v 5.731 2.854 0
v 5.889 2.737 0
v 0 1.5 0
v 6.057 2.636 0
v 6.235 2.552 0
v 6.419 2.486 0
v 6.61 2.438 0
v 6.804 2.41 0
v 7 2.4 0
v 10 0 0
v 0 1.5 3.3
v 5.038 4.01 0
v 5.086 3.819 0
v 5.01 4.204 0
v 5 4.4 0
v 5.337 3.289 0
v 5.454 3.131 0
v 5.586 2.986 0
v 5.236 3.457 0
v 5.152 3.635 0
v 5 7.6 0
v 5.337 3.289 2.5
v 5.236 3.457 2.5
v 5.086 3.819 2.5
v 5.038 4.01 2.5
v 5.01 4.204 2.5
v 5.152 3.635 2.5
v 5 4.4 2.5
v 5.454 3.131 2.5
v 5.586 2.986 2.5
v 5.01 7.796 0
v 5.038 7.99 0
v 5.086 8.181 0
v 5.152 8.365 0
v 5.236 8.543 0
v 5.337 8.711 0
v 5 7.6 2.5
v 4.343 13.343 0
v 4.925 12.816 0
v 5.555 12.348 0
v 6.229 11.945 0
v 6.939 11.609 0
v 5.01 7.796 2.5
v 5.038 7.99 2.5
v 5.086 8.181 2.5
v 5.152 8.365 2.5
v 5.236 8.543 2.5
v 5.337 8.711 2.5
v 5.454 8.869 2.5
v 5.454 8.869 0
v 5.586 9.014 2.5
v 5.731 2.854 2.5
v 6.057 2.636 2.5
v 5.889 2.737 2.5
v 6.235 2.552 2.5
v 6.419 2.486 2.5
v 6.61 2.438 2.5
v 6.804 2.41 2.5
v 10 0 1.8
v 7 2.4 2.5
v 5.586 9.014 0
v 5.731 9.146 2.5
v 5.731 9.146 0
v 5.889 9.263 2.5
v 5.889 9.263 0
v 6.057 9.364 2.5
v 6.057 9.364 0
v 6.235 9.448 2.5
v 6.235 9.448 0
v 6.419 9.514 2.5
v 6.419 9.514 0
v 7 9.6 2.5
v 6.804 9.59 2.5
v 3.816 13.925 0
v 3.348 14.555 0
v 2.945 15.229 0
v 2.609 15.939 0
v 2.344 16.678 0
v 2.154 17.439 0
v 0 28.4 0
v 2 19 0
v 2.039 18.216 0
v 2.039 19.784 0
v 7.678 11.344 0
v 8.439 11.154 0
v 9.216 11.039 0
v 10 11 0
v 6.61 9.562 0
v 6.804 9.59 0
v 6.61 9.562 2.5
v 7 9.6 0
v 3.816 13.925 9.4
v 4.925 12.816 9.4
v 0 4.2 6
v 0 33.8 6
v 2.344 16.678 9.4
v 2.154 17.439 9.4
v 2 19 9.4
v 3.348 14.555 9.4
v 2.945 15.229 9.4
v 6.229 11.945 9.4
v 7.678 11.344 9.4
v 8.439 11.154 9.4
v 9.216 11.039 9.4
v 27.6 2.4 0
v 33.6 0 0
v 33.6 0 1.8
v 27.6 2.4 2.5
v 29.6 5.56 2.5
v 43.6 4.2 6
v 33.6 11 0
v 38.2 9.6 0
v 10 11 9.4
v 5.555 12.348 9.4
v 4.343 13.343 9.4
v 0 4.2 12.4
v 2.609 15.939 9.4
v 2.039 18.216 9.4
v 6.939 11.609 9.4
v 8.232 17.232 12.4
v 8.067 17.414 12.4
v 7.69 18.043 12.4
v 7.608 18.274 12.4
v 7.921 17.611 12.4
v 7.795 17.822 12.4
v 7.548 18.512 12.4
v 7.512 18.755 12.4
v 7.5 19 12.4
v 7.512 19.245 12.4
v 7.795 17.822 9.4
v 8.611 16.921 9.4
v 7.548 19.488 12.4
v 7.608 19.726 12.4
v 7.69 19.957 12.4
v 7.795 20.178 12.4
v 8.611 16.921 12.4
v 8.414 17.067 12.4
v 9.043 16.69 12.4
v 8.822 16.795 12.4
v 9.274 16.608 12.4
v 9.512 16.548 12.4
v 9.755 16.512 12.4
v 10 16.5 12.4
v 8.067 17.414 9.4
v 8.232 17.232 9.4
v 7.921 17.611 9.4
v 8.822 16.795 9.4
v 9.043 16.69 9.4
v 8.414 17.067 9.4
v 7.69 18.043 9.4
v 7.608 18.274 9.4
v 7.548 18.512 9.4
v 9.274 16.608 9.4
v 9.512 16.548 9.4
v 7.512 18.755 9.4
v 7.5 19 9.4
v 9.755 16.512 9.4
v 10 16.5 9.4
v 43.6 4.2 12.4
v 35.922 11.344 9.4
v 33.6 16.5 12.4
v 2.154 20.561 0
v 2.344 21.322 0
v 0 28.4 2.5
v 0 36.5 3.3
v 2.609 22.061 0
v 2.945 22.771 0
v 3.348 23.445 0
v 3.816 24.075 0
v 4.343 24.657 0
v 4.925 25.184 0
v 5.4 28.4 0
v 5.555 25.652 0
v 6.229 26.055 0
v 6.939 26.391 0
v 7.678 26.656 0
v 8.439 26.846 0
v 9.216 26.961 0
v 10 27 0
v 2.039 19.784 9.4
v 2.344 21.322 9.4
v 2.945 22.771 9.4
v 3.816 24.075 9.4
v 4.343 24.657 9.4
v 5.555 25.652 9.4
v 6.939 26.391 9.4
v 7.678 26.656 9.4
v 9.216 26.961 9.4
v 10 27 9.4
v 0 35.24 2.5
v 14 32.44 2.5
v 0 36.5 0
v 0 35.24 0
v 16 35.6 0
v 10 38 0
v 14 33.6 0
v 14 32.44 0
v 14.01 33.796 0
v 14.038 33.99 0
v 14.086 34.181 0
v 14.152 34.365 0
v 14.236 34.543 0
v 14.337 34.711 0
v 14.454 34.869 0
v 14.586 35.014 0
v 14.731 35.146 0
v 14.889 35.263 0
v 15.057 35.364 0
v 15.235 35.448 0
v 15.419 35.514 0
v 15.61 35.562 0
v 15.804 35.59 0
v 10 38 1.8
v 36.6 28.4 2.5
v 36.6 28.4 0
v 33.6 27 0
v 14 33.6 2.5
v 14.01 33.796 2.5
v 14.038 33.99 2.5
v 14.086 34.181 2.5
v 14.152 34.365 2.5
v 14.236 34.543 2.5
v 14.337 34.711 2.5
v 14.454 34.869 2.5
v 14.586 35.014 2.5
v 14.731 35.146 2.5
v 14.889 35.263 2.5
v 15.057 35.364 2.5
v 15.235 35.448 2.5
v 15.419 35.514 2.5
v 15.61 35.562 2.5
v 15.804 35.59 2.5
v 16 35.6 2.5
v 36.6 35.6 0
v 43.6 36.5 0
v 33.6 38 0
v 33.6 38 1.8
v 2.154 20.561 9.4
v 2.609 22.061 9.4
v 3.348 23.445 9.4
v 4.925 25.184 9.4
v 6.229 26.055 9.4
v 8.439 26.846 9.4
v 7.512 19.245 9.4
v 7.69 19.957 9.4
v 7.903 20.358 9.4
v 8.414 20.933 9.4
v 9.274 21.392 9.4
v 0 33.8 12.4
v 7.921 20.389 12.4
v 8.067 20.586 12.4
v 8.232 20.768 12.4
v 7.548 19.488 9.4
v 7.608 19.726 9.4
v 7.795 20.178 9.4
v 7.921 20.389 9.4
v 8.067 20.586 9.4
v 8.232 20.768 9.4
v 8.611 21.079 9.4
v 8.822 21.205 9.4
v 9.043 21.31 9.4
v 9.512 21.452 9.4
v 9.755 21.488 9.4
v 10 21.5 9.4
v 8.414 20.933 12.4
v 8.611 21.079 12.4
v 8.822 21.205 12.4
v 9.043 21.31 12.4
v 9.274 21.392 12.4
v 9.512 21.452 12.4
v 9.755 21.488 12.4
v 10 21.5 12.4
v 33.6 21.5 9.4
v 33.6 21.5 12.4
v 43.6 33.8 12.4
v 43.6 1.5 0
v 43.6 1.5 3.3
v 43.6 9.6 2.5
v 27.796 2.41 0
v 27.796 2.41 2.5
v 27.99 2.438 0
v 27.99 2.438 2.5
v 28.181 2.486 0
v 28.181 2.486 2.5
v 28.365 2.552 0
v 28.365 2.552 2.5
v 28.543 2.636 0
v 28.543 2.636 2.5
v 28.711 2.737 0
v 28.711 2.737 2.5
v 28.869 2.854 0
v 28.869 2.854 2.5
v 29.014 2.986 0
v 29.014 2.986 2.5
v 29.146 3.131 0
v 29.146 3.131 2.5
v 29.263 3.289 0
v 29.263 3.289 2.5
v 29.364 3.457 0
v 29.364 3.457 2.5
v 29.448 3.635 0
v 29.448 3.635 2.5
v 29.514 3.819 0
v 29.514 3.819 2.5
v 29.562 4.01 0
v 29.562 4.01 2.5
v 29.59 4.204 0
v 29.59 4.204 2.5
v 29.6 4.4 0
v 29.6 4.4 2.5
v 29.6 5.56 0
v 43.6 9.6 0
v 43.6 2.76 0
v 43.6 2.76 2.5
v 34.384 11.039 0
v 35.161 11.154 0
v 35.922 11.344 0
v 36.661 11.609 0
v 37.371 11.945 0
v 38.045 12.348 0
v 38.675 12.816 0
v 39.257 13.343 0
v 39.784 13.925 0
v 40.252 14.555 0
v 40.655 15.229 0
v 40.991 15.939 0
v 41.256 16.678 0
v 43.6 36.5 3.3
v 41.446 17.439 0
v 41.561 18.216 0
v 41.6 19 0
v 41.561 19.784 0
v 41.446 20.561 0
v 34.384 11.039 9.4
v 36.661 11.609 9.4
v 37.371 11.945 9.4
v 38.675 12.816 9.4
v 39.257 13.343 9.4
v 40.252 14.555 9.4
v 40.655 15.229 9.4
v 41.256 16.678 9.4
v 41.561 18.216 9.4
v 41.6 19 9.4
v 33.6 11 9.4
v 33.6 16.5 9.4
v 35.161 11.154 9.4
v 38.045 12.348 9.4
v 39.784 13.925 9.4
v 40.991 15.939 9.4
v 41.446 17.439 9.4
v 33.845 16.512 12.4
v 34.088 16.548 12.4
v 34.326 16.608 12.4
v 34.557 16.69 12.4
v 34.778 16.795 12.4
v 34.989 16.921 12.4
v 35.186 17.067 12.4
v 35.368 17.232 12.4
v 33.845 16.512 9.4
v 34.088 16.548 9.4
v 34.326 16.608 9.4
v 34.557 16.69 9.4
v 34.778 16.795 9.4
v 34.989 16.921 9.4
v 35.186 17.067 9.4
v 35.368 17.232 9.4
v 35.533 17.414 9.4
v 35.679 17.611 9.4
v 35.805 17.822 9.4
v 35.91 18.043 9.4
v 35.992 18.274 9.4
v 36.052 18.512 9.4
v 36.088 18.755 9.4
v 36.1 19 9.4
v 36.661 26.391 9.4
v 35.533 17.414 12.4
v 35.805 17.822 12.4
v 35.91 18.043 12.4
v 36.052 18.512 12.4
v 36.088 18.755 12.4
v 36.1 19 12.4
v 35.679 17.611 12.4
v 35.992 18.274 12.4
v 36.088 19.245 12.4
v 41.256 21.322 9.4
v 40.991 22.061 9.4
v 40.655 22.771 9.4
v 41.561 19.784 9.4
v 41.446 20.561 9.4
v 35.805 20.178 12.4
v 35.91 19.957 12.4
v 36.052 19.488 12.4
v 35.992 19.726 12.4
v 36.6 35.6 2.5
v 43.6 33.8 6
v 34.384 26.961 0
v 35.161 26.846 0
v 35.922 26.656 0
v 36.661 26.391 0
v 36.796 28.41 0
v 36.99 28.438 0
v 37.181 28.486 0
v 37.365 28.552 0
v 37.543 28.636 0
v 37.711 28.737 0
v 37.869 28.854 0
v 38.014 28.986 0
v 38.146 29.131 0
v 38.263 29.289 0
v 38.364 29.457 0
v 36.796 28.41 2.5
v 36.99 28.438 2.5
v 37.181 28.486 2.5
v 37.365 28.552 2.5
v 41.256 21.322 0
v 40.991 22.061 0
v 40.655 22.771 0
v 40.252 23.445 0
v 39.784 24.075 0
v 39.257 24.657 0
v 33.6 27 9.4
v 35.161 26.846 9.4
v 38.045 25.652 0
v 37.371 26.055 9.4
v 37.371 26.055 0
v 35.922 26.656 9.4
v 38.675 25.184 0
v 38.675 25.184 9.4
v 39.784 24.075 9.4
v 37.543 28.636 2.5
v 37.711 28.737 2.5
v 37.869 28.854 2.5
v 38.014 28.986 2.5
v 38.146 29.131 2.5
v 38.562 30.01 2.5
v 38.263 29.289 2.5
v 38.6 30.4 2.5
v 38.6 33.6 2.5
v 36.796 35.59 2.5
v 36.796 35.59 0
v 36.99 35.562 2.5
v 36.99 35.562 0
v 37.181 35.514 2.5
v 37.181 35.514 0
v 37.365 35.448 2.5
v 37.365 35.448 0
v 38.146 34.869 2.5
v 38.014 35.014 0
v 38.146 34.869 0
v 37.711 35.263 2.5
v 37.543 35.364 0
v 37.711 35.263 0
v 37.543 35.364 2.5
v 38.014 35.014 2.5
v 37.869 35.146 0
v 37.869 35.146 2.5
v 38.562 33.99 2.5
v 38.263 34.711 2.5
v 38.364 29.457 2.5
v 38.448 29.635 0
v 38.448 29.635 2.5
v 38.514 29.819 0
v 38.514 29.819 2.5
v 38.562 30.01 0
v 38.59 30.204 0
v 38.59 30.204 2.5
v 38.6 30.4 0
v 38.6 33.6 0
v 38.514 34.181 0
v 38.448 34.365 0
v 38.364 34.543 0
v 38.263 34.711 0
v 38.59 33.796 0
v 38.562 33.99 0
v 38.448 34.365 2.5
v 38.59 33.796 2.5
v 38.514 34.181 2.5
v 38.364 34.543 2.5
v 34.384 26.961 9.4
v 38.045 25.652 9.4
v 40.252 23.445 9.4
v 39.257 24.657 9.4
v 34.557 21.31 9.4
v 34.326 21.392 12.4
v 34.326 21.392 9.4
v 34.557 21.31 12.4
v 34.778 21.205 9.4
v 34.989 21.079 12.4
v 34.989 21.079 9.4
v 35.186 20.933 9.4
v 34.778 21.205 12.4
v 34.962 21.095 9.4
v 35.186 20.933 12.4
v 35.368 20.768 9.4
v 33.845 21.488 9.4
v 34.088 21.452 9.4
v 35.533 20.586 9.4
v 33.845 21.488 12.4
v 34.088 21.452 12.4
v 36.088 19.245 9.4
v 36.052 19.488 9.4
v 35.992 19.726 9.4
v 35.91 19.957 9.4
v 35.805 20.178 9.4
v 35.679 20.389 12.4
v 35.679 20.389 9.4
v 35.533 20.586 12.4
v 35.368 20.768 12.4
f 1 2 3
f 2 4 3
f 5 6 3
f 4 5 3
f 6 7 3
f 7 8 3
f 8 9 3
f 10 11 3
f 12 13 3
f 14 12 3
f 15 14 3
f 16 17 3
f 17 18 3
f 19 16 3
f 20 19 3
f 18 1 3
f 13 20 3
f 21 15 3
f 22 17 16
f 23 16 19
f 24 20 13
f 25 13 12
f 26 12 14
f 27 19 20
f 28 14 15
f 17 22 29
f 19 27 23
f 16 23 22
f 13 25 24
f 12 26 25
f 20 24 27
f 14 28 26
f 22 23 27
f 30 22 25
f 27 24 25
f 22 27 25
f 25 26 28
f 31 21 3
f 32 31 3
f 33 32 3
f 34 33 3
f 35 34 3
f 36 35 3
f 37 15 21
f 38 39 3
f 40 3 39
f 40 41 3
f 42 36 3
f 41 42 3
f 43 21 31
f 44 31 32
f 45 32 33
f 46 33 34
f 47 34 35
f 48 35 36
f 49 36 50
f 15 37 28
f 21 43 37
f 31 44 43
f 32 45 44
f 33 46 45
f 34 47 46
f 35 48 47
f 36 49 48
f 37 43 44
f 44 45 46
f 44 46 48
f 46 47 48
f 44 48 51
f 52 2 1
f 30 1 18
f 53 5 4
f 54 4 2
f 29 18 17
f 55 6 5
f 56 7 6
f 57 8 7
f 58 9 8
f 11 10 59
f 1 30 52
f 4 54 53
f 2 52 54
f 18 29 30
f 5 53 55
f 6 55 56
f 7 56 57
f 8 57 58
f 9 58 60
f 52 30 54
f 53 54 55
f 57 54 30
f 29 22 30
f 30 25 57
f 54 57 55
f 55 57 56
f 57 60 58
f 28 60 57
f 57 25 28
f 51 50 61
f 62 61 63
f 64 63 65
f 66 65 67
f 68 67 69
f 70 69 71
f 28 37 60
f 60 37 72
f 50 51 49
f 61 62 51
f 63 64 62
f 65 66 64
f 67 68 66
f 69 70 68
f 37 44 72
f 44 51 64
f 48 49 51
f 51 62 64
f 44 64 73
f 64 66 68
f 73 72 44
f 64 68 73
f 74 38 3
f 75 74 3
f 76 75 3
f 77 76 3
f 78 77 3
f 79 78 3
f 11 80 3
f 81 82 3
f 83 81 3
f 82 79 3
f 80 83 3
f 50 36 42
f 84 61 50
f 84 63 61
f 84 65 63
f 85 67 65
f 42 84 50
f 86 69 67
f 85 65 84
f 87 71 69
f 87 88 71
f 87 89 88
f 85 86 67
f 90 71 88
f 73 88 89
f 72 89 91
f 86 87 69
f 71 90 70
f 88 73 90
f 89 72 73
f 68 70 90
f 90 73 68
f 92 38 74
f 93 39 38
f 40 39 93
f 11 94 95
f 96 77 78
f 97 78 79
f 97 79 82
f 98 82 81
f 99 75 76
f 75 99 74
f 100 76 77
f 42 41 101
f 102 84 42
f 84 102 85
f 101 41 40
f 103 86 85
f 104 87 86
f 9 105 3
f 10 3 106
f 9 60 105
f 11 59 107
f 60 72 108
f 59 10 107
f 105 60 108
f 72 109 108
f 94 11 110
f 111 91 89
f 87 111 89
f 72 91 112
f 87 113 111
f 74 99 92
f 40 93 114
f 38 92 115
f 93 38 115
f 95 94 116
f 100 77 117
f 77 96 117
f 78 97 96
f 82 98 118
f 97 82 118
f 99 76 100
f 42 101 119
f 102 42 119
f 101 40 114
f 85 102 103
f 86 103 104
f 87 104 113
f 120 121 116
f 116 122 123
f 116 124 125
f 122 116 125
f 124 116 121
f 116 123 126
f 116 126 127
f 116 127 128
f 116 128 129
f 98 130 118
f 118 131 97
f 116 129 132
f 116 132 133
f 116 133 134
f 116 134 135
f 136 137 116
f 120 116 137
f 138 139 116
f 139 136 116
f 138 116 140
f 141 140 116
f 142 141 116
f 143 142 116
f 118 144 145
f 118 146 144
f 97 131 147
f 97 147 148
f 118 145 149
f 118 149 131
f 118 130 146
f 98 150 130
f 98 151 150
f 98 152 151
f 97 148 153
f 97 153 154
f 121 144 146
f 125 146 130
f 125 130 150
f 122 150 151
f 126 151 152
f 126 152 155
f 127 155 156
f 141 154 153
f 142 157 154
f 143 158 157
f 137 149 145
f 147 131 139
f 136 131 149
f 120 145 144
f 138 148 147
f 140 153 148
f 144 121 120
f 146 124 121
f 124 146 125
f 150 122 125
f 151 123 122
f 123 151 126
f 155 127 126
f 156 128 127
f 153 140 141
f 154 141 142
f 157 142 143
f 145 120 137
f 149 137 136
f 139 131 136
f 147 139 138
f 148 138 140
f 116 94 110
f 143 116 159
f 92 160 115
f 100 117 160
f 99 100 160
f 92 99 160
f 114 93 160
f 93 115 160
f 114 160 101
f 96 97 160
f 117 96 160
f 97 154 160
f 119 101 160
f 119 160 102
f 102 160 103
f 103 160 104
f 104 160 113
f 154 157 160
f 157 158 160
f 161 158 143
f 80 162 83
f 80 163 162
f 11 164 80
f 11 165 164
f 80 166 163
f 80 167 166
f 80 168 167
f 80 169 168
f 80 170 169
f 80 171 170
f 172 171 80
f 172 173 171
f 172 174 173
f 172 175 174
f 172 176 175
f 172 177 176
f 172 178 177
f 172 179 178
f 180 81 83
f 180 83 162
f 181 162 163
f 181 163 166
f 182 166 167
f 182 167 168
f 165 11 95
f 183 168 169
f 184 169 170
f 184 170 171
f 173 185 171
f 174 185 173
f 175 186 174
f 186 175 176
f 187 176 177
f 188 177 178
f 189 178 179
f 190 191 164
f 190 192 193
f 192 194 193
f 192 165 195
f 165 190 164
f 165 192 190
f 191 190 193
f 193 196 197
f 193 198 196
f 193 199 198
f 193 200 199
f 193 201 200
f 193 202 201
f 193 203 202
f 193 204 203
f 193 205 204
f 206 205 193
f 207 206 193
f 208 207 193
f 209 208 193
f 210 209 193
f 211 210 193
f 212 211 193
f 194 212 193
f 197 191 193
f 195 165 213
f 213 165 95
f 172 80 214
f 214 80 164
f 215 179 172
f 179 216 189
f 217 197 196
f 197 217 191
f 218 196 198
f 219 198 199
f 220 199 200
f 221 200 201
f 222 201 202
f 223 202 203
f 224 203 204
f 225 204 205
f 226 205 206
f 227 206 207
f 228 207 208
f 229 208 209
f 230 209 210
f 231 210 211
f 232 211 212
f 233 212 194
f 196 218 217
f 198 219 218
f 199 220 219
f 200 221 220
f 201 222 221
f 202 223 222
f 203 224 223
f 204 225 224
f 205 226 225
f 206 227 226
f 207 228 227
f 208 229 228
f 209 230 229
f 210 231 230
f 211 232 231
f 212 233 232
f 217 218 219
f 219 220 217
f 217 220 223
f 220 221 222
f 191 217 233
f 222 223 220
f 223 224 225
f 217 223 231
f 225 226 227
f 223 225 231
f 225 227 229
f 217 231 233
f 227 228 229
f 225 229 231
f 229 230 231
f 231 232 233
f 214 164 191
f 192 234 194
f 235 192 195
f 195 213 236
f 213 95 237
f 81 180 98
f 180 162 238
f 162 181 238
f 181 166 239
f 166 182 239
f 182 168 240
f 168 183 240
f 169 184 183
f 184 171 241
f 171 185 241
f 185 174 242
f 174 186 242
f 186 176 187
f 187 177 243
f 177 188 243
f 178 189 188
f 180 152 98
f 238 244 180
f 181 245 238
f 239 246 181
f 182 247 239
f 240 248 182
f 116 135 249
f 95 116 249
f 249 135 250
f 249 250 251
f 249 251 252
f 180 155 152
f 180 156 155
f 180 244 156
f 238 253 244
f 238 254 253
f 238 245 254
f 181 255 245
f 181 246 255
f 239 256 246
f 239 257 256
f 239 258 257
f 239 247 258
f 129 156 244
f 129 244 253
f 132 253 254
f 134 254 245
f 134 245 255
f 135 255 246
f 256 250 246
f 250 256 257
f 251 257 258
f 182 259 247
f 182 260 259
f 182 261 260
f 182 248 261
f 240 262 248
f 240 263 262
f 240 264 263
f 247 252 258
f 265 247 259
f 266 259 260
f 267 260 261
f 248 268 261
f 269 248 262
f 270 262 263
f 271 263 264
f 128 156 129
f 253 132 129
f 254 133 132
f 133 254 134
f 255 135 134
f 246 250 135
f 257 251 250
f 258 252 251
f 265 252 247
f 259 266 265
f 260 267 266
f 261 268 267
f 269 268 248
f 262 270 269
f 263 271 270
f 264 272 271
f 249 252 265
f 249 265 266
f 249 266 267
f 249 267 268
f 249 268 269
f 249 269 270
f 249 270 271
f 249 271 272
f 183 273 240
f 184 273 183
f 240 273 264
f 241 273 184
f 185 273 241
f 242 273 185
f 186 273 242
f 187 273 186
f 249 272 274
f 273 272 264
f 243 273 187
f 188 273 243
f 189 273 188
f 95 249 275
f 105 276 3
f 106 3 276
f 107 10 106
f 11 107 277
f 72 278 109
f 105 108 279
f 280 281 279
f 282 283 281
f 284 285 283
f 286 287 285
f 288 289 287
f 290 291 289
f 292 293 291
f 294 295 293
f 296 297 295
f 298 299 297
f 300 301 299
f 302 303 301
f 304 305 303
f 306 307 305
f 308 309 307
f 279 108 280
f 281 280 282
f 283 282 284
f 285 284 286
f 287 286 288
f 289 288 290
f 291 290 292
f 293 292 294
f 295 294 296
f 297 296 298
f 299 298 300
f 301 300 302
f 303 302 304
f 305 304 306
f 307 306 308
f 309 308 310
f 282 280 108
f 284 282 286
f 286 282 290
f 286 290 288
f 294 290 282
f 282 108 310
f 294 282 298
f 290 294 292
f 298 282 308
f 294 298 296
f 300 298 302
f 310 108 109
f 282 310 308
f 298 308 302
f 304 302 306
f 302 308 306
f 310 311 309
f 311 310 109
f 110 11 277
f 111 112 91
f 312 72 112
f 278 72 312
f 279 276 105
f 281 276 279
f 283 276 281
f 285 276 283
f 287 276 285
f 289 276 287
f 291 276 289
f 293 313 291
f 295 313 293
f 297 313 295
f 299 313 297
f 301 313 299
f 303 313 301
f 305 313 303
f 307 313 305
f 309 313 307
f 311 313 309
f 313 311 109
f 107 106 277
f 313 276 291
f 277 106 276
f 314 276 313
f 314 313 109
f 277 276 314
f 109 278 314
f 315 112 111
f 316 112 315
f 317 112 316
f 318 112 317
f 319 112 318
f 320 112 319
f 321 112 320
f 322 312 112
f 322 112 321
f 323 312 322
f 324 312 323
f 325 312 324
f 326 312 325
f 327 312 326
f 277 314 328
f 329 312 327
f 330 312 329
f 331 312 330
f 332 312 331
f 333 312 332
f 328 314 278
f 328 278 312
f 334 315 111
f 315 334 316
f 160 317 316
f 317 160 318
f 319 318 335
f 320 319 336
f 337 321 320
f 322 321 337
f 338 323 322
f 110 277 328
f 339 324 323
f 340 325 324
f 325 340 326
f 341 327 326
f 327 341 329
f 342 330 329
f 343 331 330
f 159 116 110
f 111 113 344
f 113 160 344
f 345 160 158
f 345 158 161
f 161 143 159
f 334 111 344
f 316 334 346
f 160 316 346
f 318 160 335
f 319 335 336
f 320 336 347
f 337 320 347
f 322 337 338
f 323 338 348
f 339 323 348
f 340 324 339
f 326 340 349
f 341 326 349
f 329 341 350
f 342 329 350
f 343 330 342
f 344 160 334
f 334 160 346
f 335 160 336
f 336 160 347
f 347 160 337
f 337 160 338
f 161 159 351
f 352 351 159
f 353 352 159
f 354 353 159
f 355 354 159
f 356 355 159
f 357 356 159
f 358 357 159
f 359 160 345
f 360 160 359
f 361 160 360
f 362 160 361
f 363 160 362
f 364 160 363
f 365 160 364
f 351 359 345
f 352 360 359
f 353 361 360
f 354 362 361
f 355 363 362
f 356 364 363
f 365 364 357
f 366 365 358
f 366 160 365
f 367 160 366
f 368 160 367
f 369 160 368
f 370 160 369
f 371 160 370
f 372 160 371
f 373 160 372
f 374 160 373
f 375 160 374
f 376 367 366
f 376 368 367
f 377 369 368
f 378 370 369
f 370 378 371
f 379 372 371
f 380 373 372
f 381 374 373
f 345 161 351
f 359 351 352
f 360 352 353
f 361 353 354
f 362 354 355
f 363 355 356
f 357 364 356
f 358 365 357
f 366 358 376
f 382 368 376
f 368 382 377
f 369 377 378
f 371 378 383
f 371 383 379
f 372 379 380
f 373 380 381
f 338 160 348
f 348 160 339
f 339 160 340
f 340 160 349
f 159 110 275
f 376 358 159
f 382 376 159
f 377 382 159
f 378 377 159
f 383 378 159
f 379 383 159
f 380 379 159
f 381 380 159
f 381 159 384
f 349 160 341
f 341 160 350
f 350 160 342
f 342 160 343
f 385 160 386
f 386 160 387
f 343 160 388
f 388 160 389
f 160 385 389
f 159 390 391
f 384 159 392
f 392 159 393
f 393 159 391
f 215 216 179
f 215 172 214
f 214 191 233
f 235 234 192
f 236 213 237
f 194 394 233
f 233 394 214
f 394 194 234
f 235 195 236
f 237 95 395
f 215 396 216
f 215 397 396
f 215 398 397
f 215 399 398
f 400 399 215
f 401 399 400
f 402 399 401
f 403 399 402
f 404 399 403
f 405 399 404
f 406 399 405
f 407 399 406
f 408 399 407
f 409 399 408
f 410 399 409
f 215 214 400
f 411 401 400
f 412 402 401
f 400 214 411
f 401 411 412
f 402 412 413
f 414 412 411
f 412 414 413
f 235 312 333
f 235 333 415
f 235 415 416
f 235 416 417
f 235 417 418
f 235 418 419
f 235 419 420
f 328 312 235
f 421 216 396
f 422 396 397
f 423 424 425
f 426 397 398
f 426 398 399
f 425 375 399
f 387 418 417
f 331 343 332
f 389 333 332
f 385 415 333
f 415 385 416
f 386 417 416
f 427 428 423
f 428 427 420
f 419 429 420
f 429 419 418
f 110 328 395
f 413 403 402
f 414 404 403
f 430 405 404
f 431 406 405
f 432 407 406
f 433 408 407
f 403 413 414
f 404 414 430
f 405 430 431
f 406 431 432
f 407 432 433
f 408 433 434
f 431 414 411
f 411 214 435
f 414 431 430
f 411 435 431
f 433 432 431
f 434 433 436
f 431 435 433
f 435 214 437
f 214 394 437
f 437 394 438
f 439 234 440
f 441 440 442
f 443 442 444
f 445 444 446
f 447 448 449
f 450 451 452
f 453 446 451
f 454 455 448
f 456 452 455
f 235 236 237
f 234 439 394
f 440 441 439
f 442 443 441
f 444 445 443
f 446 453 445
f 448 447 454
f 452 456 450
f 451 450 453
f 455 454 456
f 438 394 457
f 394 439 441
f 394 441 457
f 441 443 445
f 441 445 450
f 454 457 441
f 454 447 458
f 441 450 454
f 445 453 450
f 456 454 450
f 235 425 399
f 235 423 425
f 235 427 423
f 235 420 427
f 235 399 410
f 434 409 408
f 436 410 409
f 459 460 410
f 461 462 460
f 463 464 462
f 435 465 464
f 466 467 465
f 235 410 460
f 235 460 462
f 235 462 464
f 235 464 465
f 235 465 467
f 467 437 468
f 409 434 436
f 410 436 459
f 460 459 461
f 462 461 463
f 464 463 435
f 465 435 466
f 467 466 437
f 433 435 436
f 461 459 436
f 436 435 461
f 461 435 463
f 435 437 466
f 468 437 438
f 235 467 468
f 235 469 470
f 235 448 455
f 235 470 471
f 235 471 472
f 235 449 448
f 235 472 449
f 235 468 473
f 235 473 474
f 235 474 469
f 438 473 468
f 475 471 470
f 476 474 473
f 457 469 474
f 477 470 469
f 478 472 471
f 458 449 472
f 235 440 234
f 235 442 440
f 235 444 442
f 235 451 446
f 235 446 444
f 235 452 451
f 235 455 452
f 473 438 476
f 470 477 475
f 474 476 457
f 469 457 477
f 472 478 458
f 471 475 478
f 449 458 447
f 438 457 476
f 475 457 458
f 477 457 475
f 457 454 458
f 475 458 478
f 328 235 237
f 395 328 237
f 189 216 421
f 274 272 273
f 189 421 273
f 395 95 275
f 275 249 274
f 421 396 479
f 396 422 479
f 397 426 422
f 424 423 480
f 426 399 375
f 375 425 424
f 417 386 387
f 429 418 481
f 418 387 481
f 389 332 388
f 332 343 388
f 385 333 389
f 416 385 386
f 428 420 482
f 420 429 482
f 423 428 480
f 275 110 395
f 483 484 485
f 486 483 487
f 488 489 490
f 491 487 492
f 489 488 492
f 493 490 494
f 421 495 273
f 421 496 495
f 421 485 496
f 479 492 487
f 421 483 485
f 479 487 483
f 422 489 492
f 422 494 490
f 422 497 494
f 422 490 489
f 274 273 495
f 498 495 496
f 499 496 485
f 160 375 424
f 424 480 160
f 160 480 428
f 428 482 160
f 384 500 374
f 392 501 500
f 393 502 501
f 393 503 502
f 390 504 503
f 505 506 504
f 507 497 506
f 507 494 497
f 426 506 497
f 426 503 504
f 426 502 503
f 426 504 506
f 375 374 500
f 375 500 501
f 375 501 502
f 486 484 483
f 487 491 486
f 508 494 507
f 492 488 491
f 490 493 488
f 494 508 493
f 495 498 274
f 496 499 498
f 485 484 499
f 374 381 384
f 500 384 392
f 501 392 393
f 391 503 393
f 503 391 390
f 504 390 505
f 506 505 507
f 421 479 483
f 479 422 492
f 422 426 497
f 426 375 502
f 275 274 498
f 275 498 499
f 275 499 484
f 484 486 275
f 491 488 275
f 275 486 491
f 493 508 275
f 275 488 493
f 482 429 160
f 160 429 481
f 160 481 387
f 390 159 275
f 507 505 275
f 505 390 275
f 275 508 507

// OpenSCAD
// Plate for dji rs3 mini stab
$fn=64;
height=12.4;
height_top=6.4;
width=38;
width_top=29.6;
depth=43.6;
tcx=10;
tcy=1.5;

pin_length=2.5; //1.7 in reality
pin_diameter=4; //3.4 in reality
lock_thickness=2.4;
lock=lock_thickness+pin_diameter/2;
open_thickness=5.6;
open=open_thickness+pin_diameter/2;
lock_end_thickness=5;
lock_end=depth-lock_end_thickness-pin_diameter/2;
lock_start_thickness=14;
lock_start=lock_start_thickness+pin_diameter/2;

bolt_diameter=16;
bolt_head=height-3;
thread_begin=10;
thread_end=depth-thread_begin;
width_bottom=width_top+2*(height-height_top);
module top_view(){
  //square([depth,width]);
  difference() {
  polygon(points=[[tcx,0],[depth-tcx,0],[depth,tcy],[depth,width-tcy],[depth-tcx,width],[tcx,width],[0,width-tcy],[0,tcy]]);
  hull() {
    translate([thread_begin,width/2,0]) circle(d=5);
    translate([thread_end,width/2,0]) circle(d=5);
  }
  }
}
module side_view(){
  square([depth,height]);
}
module rear_view(){
  *square([height,width]);
  polygon([[0,(width-width_bottom)/2],[height-height_top,(width-width_top)/2],[height,(width-width_top)/2],[height,(width+width_top)/2],[height-height_top,(width+width_top)/2],[0,(width+width_bottom)/2]]);
}
module inner_structure(){
  linear_extrude(pin_length) {
    pin_cutout();
    translate([depth,width])rotate(180) pin_cutout();
  }
  hull() {
    translate([thread_begin,width/2,0])cylinder(d=bolt_diameter,h=bolt_head);
    translate([thread_end,width/2,0])cylinder(d=bolt_diameter,h=bolt_head);
  } 
}
module pin_cutout() {
  pinpoints=[[-pin_diameter/2,width-lock],[lock_start-pin_diameter/2,width-open],[lock_start,width-open],[lock_start,width-lock],[lock_end,width-lock],[lock_end,width-open],[-pin_diameter/2,width-open]];
  for (i=[0:1:5]) hull() {
    translate(pinpoints[i]) circle(d=pin_diameter);
    translate(pinpoints[i+1]) circle(d=pin_diameter);
  }
    
}
difference() {
  intersection() {
    linear_extrude(height,convexity=2) top_view();
    rotate([-90,0,0]) mirror([0,1,0]) linear_extrude(width,convexity=2) side_view();
    rotate([0,90,0]) mirror([1,0,0]) linear_extrude(depth,convexity=2) rear_view();
  }
  inner_structure();
}
